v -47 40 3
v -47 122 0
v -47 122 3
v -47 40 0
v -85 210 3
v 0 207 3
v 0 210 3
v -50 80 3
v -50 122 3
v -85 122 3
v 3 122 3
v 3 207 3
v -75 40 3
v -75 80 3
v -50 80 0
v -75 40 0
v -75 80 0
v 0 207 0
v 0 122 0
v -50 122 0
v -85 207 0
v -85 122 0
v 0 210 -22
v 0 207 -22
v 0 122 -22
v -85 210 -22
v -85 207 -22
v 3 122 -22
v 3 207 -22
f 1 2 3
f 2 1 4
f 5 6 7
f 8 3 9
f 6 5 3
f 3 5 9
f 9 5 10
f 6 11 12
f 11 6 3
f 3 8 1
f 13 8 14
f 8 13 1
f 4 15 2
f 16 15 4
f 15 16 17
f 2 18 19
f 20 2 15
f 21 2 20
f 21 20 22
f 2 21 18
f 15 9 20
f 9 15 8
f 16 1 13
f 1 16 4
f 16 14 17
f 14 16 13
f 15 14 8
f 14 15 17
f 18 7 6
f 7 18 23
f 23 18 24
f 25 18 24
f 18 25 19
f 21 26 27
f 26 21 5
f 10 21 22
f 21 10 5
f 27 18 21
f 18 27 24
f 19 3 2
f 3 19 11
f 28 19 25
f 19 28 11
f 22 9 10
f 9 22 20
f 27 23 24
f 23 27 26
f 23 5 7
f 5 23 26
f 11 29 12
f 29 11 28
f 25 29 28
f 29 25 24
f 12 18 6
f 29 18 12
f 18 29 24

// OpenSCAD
thickness  =   3;
length     = 207;
width      =  85;
connection =   3;
hook       =  25;

translate([-50, 40, 0]) cube([ connection, length-40, thickness  ]);
translate([-50-25, 40, 0]) cube([25, 40, thickness]);
translate([-width, length-width, 0]) cube([width, width, thickness]);

//hook
translate([-width, length, -hook+connection]) cube([width, connection, hook]);
translate([0, length-width, -hook+connection]) cube([connection, width, hook]);
